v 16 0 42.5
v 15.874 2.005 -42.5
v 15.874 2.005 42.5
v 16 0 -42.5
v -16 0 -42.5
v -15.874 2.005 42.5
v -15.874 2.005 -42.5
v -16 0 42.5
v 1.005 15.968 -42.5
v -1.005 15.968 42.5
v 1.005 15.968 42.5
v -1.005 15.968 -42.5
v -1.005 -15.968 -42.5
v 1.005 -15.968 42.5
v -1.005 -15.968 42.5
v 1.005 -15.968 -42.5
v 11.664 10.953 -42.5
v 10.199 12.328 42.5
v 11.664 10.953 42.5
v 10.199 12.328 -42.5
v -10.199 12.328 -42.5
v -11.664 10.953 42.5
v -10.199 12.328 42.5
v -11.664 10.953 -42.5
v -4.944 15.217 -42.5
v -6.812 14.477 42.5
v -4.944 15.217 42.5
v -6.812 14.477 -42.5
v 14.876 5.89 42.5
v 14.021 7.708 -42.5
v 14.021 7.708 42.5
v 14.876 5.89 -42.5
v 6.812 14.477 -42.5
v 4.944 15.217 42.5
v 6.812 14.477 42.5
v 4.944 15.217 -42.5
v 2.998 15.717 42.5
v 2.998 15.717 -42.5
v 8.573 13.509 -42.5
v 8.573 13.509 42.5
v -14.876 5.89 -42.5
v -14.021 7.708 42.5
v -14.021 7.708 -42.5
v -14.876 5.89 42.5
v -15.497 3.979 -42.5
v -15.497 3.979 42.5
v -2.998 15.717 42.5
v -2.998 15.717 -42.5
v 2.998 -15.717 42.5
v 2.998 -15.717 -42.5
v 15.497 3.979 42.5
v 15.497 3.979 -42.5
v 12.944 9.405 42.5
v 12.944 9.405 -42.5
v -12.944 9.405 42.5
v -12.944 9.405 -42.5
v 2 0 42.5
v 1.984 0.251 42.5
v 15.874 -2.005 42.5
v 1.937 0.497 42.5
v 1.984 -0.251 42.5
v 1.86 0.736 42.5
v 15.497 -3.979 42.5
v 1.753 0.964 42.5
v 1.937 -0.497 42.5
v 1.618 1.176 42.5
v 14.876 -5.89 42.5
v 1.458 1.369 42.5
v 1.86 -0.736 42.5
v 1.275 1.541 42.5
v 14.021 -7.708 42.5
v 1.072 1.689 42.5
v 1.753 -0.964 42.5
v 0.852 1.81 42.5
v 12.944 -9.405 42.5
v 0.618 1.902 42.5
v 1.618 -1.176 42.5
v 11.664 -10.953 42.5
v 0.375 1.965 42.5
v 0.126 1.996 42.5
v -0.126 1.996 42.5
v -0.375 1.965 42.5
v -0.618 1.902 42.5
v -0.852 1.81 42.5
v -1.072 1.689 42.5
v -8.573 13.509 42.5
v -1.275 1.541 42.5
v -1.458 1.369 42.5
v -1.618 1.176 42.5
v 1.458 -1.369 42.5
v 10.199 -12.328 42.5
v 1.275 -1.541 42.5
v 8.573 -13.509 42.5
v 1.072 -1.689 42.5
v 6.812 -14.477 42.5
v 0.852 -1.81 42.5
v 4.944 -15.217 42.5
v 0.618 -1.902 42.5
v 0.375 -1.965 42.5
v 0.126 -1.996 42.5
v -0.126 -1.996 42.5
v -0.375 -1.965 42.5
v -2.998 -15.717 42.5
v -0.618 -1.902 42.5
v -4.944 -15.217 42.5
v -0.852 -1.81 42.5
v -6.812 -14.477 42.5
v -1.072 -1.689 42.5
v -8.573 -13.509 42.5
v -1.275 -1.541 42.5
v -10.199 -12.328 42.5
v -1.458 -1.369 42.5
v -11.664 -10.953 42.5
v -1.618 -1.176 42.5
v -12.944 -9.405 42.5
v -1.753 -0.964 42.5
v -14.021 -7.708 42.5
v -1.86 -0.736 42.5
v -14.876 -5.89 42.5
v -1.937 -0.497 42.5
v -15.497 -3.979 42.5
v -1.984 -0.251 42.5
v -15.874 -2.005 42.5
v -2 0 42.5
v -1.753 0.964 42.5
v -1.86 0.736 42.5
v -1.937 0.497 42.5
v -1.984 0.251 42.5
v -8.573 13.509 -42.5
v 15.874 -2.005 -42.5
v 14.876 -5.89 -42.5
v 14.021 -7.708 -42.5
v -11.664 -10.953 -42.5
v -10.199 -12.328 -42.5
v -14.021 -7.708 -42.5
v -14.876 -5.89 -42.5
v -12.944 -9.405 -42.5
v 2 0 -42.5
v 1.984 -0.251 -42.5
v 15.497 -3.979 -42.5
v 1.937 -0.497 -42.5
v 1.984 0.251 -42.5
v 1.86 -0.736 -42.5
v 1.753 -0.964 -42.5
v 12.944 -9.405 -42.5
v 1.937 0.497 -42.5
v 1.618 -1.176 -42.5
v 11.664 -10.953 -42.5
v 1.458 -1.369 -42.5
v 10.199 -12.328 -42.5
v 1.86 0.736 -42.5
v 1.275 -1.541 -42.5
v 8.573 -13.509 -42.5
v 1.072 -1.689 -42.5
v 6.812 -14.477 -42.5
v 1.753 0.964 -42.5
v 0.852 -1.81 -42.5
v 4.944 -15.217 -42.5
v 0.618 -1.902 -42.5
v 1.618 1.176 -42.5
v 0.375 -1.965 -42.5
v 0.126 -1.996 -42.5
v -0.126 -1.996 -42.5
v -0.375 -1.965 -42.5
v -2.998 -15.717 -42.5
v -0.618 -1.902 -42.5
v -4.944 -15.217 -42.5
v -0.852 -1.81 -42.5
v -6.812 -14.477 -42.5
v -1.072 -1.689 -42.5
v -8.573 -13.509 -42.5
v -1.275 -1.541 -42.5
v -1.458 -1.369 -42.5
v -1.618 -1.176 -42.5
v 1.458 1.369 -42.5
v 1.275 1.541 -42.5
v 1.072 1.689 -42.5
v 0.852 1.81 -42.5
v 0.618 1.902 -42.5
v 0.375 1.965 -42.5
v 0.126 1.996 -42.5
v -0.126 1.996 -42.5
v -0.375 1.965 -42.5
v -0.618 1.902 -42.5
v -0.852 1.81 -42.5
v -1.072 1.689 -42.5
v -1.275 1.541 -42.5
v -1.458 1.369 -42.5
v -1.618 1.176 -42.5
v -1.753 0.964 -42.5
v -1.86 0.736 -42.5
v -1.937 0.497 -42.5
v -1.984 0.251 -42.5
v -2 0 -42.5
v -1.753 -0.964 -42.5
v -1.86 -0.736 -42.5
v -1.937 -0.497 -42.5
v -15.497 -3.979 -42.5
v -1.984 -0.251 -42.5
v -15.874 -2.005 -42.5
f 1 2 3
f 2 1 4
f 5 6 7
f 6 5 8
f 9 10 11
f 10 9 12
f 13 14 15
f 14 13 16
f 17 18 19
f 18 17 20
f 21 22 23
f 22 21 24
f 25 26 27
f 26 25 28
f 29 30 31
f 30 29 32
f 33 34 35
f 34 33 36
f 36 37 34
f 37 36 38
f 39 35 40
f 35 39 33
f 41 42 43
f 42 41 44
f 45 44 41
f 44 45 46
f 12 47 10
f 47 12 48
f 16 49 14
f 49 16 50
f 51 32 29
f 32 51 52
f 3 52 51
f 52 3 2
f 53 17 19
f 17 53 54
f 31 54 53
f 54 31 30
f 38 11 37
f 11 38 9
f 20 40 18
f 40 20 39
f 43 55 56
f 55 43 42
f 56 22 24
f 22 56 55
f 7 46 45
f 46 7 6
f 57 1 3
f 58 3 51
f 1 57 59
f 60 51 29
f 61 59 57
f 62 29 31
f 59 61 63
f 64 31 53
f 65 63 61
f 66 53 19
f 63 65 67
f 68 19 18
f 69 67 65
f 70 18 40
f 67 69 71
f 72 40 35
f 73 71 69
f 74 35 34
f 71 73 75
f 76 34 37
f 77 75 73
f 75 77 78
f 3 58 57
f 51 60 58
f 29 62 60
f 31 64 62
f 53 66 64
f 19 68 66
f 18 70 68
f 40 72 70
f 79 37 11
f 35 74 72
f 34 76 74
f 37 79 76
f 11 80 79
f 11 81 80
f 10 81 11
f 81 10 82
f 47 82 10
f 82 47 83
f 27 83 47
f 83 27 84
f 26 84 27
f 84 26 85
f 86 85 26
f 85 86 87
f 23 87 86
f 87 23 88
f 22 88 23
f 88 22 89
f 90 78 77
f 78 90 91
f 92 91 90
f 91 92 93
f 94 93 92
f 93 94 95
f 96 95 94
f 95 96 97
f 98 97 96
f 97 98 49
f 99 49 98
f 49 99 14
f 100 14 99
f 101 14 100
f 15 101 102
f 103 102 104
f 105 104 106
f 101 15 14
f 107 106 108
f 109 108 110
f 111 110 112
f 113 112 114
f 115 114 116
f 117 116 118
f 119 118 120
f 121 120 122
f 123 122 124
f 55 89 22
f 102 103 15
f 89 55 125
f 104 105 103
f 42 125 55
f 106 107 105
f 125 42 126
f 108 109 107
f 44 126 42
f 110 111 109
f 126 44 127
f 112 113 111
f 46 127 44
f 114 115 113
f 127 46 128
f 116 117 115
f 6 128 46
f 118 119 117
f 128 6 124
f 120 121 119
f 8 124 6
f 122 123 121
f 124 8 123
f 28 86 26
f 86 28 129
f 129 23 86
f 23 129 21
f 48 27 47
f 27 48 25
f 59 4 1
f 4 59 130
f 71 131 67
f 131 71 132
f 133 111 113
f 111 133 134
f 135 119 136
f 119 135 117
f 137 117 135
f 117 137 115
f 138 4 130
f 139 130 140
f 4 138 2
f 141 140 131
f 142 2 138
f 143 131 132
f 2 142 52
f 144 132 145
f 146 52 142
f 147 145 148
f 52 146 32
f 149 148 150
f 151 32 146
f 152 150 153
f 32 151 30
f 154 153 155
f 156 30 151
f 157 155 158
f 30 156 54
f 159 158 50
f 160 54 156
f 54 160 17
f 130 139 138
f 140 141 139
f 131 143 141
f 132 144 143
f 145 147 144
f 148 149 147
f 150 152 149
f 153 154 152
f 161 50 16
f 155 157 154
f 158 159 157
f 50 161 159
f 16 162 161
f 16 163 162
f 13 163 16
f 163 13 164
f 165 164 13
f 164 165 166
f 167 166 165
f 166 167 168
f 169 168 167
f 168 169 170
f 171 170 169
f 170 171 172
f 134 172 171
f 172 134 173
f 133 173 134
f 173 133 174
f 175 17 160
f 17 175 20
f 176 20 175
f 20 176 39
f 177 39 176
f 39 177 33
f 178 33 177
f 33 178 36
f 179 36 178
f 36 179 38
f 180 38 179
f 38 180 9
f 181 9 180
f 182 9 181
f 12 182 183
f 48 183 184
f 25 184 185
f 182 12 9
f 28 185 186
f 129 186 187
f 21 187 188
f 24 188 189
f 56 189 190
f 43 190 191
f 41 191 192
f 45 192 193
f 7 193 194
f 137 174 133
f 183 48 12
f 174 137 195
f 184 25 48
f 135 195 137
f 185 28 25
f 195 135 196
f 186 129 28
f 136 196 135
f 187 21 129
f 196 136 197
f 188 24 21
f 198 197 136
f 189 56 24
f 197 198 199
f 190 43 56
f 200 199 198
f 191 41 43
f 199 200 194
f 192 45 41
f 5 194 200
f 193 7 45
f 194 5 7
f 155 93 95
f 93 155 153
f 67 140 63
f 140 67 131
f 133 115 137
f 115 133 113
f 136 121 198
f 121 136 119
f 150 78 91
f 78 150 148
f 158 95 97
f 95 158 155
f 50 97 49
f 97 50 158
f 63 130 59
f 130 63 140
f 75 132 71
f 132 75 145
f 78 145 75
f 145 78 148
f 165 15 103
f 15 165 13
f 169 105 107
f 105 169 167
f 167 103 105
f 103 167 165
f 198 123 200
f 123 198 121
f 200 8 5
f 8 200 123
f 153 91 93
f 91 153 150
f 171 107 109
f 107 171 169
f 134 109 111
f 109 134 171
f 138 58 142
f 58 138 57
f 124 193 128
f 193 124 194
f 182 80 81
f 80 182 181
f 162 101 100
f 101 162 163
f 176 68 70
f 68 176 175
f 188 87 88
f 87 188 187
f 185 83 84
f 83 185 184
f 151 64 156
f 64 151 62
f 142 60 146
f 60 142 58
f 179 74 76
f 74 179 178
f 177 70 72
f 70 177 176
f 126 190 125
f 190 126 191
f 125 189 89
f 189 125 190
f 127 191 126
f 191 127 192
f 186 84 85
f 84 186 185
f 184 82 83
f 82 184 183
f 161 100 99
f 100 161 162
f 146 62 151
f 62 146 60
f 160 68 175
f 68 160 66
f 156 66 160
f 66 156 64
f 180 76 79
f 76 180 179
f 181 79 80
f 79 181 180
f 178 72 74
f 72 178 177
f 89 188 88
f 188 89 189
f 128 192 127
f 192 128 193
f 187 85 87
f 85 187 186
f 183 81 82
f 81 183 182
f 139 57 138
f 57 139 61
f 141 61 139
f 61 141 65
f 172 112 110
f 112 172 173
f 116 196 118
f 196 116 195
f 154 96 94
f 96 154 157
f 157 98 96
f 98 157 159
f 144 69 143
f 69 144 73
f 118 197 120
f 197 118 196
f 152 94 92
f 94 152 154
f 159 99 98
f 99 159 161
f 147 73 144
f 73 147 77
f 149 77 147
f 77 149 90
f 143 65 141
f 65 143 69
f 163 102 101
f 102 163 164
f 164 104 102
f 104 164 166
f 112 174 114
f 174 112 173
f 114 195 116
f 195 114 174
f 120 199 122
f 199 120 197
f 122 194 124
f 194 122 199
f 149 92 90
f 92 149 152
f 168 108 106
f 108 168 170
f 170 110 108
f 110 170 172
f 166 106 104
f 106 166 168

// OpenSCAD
$fn = 50;


difference() {
	union() {
		translate(v = [0, 0, -42.5000000000]) {
			cylinder(h = 85, r = 16.0000000000);
		}
	}
	union() {
		translate(v = [0, 0, -100.0000000000]) {
			cylinder(h = 200, r = 2);
		}
	}
}
